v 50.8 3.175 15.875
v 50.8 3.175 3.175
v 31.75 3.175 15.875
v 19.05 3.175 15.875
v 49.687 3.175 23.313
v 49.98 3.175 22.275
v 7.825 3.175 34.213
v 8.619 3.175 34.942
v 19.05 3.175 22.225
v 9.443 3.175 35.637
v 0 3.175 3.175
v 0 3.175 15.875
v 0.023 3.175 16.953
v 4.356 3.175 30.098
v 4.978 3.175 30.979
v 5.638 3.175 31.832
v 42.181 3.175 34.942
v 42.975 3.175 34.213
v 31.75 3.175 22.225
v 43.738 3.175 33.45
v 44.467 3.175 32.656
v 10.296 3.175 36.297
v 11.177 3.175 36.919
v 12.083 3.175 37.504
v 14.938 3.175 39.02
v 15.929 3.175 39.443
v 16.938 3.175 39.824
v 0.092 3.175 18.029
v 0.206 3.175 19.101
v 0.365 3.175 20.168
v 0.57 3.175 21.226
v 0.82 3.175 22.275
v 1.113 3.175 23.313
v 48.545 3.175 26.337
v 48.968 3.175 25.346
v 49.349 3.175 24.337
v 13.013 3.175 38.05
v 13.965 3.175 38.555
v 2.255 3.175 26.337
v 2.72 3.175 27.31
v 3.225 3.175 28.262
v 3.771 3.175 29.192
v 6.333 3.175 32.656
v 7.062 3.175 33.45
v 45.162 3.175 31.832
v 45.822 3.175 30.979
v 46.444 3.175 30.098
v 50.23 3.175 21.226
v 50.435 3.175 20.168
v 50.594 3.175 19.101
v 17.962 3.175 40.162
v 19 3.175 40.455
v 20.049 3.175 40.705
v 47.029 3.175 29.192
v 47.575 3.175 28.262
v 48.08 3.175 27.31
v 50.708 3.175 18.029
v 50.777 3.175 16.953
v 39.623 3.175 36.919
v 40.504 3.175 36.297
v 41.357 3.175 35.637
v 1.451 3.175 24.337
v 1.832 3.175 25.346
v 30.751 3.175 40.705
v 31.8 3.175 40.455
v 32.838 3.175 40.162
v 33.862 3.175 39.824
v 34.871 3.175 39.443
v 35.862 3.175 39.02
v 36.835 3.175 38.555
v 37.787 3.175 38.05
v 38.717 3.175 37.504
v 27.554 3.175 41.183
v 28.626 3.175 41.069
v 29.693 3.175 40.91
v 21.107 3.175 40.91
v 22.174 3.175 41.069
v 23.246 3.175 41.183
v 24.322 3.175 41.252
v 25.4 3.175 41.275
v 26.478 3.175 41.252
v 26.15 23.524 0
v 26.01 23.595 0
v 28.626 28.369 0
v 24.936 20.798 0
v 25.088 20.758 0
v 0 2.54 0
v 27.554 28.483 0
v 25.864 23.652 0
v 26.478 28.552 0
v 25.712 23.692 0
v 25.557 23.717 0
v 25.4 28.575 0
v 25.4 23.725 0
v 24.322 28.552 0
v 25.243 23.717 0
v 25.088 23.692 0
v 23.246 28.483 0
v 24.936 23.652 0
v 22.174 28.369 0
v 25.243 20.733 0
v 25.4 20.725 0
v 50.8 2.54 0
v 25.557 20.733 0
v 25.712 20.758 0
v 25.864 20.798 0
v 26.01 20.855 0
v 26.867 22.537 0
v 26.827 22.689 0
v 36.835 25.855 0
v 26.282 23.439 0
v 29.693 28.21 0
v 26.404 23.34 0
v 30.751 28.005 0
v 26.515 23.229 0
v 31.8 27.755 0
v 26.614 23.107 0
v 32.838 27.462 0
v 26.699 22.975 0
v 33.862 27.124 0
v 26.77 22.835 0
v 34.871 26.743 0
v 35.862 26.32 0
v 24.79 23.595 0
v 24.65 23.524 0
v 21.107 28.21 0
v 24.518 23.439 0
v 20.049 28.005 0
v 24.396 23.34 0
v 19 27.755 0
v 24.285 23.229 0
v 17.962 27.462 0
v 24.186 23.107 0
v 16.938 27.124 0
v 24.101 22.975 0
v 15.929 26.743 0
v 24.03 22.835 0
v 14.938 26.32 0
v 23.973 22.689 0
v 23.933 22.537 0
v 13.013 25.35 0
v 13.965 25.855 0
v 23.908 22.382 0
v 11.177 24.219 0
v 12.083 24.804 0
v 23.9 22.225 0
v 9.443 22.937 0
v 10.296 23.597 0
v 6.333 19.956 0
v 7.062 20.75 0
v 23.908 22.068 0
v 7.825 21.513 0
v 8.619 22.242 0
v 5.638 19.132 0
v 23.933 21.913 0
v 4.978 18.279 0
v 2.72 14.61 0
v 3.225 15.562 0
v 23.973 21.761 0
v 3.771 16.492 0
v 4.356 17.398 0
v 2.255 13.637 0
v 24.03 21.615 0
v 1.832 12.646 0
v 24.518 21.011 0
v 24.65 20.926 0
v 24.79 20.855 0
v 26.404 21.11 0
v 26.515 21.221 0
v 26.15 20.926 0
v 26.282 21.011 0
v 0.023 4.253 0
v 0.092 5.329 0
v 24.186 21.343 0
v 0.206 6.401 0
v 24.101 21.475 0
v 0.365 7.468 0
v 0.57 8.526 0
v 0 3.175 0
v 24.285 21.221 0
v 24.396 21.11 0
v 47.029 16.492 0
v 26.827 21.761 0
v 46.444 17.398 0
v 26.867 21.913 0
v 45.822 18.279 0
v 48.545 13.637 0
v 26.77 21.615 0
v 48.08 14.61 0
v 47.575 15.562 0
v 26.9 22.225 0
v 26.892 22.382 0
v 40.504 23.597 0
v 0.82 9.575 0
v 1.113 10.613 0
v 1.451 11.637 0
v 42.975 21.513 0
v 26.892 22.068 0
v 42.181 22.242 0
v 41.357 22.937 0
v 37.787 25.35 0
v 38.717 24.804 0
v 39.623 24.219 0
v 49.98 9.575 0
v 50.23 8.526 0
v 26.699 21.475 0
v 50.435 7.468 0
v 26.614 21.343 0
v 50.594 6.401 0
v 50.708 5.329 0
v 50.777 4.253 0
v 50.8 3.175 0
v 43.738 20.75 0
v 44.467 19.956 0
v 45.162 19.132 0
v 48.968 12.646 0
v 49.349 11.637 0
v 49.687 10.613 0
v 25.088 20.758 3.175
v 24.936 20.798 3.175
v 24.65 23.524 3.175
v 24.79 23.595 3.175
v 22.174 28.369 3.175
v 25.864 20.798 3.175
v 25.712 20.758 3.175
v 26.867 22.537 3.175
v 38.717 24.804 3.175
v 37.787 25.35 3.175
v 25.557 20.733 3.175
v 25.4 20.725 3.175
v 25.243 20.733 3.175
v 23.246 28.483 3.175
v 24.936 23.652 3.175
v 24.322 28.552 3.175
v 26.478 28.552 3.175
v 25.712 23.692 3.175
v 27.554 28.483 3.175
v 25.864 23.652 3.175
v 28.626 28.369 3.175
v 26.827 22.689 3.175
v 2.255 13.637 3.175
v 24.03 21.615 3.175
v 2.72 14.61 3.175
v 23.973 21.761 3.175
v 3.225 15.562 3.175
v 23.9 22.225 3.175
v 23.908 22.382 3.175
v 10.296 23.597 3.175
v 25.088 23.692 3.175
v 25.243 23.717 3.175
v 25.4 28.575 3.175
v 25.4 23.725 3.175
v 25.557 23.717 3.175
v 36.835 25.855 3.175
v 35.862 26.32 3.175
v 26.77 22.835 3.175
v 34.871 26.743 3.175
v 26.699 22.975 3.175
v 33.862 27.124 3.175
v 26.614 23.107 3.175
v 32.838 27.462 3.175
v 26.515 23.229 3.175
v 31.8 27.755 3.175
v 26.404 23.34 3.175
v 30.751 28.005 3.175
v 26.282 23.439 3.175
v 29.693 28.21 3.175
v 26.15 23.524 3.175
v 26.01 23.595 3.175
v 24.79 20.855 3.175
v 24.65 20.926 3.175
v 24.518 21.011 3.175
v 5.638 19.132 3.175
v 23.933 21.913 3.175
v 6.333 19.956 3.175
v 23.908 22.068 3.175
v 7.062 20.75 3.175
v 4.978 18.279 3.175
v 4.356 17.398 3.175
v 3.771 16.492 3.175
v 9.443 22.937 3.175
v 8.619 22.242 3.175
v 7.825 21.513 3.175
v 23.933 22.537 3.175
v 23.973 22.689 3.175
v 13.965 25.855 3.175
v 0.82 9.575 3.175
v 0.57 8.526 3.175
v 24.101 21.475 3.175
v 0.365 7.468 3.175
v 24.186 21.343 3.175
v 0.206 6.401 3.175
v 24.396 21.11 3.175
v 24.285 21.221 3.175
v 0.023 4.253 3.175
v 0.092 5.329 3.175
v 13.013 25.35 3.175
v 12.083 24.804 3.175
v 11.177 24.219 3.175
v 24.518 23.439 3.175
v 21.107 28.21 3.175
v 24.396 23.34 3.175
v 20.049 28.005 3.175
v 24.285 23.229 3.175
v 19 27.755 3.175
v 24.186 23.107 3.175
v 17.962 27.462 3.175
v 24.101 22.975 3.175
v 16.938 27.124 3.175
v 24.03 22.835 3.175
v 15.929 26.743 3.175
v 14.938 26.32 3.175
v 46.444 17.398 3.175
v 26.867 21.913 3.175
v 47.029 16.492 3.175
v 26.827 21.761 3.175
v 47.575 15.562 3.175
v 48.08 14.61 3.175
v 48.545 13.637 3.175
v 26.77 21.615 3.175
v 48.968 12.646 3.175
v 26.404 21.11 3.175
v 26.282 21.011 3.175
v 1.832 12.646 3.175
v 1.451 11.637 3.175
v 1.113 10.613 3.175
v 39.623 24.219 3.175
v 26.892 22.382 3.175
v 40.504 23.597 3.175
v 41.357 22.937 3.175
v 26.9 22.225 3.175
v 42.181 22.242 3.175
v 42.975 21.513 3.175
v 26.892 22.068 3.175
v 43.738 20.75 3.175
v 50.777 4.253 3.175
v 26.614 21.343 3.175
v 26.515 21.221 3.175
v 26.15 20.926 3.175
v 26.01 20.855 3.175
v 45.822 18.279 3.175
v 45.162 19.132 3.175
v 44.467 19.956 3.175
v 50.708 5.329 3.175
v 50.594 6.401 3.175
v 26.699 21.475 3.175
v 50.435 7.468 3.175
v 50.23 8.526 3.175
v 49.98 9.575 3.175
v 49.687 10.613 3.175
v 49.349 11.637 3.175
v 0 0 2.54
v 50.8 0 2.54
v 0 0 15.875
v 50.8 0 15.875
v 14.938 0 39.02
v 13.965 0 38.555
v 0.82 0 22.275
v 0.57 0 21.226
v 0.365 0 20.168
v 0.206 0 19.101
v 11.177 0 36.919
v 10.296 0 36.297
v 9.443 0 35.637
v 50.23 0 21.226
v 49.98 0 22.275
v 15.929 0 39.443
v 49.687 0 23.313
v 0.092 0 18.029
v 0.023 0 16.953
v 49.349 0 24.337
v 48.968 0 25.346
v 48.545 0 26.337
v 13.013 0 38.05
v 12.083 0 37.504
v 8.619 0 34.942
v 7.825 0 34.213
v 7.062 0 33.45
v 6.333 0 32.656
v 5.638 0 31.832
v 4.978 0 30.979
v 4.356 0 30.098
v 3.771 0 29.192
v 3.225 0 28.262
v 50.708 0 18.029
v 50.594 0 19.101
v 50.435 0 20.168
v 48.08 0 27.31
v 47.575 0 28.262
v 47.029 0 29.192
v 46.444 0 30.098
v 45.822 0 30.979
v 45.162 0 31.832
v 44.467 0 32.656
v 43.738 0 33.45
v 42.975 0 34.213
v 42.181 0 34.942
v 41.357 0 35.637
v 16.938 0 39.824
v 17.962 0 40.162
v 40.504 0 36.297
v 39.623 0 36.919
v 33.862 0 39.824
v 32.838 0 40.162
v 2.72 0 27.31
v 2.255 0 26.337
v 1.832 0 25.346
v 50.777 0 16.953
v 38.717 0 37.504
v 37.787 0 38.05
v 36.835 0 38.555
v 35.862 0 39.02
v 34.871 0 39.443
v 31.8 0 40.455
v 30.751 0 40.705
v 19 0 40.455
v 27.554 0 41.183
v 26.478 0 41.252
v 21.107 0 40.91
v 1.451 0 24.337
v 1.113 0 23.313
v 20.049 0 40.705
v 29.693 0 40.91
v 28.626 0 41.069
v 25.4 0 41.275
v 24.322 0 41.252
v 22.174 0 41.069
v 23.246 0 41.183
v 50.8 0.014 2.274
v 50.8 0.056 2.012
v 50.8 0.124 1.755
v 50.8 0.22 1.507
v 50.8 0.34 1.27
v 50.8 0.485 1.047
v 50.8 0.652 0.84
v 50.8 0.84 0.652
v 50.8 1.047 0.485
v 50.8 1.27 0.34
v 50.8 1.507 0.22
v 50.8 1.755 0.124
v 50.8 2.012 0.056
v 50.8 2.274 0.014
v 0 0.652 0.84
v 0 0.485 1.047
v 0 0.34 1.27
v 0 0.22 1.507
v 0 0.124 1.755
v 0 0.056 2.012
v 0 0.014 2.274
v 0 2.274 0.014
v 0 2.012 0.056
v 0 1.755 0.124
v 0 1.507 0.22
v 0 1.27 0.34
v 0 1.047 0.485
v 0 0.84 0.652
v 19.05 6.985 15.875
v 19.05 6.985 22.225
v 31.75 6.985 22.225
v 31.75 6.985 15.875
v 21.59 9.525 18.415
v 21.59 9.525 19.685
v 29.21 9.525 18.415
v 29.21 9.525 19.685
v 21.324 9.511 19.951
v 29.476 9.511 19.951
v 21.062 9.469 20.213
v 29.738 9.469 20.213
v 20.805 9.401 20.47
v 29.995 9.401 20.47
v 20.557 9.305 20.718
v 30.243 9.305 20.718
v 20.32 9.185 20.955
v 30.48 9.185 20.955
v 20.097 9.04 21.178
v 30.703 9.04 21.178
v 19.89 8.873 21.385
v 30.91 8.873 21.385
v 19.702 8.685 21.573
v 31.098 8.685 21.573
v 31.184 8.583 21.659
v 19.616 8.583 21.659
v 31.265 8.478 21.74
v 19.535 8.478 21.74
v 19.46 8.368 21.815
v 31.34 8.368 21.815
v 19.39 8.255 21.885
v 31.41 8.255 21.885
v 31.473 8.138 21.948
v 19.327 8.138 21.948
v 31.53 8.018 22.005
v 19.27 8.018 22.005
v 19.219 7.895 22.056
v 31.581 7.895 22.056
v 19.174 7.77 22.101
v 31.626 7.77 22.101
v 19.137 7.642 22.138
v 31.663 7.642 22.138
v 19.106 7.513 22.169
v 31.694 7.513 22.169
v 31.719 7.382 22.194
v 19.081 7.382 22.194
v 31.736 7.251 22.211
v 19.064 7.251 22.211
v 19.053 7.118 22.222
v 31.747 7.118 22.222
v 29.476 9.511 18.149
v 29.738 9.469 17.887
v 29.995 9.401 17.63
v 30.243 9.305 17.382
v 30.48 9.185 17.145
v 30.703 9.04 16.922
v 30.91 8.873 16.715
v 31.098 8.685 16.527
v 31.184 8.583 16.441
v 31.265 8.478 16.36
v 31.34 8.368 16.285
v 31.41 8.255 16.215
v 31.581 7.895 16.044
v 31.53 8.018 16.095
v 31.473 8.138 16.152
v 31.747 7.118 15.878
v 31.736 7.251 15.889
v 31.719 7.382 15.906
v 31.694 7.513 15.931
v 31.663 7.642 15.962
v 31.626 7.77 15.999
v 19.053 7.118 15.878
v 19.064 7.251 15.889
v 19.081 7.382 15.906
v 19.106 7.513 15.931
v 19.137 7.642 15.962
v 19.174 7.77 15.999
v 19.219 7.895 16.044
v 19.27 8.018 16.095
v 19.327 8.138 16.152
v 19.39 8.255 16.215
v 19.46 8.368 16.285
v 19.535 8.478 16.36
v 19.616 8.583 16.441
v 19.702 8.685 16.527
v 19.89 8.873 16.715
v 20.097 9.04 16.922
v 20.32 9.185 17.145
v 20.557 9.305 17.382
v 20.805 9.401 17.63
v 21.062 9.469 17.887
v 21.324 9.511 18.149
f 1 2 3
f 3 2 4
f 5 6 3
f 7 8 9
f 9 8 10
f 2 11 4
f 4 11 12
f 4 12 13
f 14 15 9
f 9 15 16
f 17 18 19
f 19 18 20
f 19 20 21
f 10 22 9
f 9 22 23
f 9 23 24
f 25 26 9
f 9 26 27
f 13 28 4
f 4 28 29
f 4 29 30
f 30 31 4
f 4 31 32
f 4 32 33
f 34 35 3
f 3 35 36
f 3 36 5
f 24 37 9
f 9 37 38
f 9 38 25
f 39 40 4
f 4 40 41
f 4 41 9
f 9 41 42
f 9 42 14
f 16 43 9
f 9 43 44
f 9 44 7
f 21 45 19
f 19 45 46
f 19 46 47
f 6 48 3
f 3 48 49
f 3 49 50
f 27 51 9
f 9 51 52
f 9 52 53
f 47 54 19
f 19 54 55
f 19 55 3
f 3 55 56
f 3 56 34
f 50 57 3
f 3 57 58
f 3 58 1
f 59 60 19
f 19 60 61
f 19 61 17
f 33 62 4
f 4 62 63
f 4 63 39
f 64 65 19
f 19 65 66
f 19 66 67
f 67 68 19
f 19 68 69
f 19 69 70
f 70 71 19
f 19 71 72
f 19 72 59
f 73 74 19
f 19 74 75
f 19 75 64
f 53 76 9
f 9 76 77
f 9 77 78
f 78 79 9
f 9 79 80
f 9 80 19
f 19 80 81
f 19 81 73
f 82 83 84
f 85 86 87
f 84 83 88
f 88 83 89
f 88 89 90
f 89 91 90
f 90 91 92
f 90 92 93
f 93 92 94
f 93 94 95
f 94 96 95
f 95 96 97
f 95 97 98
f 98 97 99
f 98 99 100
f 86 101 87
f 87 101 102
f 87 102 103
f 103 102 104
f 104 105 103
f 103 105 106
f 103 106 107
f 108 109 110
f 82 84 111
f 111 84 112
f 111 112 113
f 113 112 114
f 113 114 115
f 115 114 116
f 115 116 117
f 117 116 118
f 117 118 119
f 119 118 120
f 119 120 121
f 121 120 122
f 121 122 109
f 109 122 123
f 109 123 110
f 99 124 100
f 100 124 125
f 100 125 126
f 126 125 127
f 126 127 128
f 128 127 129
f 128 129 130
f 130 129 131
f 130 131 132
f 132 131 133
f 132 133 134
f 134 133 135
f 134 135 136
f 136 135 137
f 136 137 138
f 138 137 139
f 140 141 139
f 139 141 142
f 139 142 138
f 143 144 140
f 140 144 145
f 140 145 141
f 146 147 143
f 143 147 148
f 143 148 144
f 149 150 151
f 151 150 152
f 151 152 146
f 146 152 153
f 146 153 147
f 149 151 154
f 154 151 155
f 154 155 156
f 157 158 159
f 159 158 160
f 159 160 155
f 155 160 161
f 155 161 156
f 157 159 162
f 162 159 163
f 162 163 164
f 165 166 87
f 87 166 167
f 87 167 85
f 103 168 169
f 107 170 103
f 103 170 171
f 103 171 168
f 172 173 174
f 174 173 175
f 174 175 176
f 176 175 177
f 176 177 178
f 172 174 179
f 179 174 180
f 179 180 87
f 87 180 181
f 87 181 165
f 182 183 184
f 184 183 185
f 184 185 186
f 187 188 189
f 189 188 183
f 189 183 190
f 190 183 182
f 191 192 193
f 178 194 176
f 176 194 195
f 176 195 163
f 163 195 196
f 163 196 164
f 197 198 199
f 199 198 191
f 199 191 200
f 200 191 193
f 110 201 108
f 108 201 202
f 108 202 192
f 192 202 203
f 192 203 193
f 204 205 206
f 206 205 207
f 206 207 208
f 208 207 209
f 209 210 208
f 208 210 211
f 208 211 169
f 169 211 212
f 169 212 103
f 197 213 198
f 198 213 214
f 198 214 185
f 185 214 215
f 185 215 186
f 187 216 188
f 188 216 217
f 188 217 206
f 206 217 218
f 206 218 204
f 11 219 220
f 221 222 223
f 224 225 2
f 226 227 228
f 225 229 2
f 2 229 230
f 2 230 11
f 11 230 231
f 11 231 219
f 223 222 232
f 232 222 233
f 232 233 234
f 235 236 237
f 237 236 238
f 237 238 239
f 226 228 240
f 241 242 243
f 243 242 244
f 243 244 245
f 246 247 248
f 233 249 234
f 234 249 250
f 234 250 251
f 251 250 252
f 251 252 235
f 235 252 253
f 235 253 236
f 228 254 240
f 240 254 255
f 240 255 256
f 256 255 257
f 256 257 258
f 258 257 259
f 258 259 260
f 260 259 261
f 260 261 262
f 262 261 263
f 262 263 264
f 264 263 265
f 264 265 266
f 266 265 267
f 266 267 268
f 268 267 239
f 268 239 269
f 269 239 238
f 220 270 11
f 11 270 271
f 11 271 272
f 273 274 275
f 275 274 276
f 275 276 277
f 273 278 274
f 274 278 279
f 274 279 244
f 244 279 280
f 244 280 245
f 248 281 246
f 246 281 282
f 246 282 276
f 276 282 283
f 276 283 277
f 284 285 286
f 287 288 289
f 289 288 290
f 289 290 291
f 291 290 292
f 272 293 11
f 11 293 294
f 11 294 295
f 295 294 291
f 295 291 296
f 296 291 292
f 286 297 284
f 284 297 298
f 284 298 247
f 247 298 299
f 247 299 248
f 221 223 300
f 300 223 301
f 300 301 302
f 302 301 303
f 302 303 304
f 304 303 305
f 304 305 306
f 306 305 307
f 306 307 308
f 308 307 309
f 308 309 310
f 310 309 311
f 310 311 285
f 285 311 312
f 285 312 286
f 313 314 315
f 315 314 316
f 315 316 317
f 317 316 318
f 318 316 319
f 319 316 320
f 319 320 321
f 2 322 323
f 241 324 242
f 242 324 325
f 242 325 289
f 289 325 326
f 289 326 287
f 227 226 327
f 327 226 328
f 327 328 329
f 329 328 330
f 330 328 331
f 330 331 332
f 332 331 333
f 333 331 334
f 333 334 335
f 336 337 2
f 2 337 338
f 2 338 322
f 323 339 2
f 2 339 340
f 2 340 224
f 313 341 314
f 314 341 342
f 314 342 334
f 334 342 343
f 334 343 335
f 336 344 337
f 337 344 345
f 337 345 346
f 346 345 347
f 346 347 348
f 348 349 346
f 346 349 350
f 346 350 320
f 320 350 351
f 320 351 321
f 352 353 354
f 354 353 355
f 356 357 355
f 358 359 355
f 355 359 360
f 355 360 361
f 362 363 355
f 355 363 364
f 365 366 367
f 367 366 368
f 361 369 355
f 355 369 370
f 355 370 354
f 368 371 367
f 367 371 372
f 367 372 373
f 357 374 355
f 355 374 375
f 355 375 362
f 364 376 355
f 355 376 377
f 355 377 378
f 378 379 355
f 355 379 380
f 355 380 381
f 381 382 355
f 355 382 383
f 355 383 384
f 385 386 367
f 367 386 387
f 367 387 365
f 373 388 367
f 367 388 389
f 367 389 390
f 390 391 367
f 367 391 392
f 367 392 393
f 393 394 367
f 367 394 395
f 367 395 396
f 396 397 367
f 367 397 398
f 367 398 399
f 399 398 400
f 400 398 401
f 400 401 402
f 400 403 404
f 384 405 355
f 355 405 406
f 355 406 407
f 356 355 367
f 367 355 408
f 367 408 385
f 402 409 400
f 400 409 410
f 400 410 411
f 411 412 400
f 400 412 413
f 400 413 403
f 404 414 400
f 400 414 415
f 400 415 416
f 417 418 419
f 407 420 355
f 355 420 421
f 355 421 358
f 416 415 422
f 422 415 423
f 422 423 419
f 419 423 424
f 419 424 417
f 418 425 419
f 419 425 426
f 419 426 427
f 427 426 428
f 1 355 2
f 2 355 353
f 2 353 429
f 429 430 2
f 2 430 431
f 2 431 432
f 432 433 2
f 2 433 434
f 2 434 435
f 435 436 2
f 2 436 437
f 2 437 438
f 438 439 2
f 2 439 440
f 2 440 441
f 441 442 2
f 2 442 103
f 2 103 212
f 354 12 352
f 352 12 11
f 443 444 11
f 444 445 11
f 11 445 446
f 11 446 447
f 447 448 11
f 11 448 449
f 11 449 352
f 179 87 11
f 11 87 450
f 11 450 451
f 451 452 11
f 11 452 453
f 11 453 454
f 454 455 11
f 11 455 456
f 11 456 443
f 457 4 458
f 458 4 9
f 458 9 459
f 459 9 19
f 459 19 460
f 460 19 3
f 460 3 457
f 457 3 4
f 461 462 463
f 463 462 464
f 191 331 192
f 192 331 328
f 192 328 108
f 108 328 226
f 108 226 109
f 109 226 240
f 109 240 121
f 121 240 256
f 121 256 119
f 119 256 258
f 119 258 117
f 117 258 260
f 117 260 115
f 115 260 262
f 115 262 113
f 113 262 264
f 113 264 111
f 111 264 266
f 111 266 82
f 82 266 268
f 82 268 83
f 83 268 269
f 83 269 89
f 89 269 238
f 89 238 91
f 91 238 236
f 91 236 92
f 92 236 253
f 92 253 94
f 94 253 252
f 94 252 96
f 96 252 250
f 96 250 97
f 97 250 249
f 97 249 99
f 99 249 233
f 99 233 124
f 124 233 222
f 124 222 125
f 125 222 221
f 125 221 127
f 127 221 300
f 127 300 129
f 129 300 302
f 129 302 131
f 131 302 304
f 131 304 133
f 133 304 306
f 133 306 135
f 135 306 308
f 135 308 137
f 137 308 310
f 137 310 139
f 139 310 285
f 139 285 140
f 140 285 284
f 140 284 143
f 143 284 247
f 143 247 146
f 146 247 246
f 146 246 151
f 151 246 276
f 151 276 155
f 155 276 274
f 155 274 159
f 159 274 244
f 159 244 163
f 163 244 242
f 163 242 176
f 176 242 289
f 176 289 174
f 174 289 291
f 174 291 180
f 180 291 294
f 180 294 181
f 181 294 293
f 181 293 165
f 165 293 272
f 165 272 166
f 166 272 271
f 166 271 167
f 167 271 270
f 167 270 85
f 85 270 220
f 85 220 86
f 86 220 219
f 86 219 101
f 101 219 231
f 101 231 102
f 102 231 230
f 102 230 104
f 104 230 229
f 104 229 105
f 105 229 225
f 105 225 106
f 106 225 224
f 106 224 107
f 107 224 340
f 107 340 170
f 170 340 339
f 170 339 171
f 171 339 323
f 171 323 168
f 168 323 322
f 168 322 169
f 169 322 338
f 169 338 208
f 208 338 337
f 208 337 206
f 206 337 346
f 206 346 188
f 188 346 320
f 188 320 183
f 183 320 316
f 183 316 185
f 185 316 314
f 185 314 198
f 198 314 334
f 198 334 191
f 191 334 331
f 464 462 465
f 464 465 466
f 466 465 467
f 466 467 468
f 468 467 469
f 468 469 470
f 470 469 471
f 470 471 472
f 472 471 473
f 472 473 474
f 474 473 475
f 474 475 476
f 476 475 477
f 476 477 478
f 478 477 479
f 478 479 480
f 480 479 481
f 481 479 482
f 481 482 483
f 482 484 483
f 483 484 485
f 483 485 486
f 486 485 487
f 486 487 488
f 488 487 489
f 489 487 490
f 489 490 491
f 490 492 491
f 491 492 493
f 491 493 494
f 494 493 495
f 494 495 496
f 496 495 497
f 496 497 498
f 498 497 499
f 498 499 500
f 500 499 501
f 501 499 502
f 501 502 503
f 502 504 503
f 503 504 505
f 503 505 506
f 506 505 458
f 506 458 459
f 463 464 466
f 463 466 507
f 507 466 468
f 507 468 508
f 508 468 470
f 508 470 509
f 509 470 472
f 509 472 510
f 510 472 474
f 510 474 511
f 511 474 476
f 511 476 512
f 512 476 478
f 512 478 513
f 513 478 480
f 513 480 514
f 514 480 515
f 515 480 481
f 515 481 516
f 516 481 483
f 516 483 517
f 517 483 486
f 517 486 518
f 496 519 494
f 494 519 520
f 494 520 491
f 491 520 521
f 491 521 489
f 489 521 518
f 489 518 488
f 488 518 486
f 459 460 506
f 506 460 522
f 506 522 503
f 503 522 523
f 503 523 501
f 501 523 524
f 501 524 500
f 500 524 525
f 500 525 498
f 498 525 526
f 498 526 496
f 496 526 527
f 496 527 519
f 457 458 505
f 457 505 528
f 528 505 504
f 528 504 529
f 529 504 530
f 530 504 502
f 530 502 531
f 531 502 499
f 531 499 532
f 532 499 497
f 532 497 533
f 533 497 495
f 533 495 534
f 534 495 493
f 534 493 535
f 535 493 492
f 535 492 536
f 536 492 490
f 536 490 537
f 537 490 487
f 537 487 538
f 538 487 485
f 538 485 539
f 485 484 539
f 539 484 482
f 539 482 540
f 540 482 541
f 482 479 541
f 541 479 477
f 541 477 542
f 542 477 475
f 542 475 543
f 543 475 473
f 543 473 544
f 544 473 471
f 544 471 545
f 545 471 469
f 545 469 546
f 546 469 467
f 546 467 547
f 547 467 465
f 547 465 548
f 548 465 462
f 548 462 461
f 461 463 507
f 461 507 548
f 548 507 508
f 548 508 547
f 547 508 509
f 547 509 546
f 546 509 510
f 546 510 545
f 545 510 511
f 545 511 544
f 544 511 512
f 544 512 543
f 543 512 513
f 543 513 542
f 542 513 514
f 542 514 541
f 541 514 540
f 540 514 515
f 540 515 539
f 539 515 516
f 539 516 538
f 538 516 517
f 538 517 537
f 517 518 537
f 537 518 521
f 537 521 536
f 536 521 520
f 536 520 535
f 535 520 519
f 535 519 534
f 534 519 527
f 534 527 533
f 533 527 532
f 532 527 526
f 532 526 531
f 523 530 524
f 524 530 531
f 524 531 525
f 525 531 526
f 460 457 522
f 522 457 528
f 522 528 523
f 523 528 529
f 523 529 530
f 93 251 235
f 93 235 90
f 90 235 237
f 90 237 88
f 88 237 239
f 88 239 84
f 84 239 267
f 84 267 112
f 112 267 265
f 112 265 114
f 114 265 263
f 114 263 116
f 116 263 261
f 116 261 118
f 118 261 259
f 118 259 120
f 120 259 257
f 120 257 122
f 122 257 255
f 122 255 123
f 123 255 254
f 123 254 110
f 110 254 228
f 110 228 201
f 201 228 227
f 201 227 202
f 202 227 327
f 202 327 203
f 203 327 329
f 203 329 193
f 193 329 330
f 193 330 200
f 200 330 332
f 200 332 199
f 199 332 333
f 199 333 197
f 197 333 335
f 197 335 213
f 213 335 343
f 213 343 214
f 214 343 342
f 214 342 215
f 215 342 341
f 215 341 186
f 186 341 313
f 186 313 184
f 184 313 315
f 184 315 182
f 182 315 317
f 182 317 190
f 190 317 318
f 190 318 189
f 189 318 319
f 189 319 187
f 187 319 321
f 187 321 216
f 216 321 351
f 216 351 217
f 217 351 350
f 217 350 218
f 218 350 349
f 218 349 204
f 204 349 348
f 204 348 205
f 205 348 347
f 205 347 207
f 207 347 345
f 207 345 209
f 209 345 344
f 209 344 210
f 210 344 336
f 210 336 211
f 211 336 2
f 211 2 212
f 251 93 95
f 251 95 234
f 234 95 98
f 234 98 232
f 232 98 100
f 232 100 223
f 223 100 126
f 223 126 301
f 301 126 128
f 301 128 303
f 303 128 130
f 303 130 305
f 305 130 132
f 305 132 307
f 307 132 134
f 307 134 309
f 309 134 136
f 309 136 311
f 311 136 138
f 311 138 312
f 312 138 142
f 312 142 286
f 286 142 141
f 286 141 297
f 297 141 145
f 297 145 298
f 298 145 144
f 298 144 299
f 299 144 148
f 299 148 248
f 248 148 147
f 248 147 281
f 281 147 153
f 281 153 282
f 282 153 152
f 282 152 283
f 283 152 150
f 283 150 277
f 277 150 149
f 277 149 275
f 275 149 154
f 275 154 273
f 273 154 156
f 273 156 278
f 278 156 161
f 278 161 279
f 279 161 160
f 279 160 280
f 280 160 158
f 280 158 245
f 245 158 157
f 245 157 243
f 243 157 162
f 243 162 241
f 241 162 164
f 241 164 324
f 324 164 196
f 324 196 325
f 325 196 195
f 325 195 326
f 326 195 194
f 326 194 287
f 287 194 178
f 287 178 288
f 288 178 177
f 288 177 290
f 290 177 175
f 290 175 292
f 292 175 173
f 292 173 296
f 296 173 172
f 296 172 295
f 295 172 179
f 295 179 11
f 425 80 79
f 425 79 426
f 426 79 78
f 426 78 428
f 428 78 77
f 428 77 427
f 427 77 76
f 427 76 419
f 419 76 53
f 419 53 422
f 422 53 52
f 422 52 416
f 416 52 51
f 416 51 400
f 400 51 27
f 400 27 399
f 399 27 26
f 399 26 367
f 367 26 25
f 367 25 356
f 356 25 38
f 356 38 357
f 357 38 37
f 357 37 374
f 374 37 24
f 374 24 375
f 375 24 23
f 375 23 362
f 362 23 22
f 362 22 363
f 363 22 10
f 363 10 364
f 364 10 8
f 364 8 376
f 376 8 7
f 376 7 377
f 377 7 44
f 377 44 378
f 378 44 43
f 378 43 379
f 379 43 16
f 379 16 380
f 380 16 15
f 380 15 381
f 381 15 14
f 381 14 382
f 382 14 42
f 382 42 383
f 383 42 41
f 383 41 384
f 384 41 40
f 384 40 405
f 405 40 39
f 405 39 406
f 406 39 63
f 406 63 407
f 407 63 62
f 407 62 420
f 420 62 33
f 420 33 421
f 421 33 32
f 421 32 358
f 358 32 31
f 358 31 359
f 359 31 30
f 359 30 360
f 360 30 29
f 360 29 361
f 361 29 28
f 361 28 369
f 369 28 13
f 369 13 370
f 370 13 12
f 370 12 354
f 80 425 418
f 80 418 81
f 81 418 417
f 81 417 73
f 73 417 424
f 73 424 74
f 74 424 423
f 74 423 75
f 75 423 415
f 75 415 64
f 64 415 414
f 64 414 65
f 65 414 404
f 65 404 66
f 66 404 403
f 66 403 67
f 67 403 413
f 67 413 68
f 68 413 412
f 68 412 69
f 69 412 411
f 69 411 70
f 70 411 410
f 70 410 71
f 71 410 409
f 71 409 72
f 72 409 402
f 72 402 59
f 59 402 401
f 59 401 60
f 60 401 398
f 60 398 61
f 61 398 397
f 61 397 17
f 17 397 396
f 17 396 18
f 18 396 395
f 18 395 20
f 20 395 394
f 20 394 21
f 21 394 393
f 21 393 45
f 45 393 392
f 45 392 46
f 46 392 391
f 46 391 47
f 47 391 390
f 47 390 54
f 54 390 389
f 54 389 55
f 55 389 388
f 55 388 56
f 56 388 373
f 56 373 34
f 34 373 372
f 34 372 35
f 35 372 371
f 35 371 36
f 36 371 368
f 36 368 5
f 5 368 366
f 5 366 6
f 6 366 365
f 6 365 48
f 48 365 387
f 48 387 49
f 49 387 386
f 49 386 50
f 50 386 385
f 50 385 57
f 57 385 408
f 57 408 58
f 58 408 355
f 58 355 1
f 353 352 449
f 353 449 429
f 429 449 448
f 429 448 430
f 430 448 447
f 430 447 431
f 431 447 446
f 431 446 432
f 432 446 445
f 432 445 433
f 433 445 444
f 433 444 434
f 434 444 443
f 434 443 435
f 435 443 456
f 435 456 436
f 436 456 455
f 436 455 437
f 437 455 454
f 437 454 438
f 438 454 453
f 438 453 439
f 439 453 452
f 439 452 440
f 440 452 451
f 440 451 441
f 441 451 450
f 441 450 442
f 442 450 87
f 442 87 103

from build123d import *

# Parameters (mm, degrees)
BOSS_EXTRUDE1_DEPTH = 50.8
SKETCH2_W           = 12.7
SKETCH2_H           = 6.35
BOSS_EXTRUDE2_DEPTH = 6.35
SKETCH3_R           = 1.499997
CUT_EXTRUDE1_DEPTH  = 70.633186233
FILLET1_R           = 2.54
FILLET2_R           = 25.4
FILLET3_R           = 2.54


with BuildPart() as part:
    # Sketch1 → Boss-Extrude1 (new body)
    with BuildSketch(Plane(origin=(0, 0, 0), x_dir=(0, 0, -1), z_dir=(1, 0, 0))):
        Polygon((0, 0), (-41.275, 0), (-41.275, 3.175), (-3.175, 3.175), (-3.175, 28.575), (0, 28.575), align=None)
    extrude(amount=BOSS_EXTRUDE1_DEPTH)

    # Sketch2 → Boss-Extrude2 (add)
    with BuildSketch(Plane(origin=(0, 3.175, 0), x_dir=(1, 0, 0), z_dir=(0, 1, 0))):
        with Locations((25.4, -19.05)):
            Rectangle(SKETCH2_W, SKETCH2_H)
    extrude(amount=BOSS_EXTRUDE2_DEPTH)

    # Sketch3 → Cut-Extrude1 (cut, through all)
    with BuildSketch(Plane.XY.offset(3.175)):
        with Locations((25.4, 22.225)):
            Circle(SKETCH3_R)
    extrude(amount=-CUT_EXTRUDE1_DEPTH, mode=Mode.SUBTRACT)

    # Fillet1
    fillet1_edges = [part.edges().sort_by_distance(p)[0] for p in [
        (19.05, 9.525, 19.05),
        (25.4, 9.525, 22.225),
        (31.75, 9.525, 19.05),
        (25.4, 9.525, 15.875),
    ]]
    fillet(fillet1_edges, radius=FILLET1_R)

    # Fillet2
    fillet2_edges = [part.edges().sort_by_distance(p)[0] for p in [
        (0, 28.575, 1.5875),
        (50.8, 28.575, 1.5875),
        (50.8, 1.5875, 41.275),
        (0, 1.5875, 41.275),
    ]]
    fillet(fillet2_edges, radius=FILLET2_R - 0.0001)  # a hair under: the kernel refuses the full size

    # Fillet3
    fillet3_edges = [part.edges().sort_by_distance(p)[0] for p in [
        (25.4, 0, 0),
    ]]
    fillet(fillet3_edges, radius=FILLET3_R)


solid = part.part
